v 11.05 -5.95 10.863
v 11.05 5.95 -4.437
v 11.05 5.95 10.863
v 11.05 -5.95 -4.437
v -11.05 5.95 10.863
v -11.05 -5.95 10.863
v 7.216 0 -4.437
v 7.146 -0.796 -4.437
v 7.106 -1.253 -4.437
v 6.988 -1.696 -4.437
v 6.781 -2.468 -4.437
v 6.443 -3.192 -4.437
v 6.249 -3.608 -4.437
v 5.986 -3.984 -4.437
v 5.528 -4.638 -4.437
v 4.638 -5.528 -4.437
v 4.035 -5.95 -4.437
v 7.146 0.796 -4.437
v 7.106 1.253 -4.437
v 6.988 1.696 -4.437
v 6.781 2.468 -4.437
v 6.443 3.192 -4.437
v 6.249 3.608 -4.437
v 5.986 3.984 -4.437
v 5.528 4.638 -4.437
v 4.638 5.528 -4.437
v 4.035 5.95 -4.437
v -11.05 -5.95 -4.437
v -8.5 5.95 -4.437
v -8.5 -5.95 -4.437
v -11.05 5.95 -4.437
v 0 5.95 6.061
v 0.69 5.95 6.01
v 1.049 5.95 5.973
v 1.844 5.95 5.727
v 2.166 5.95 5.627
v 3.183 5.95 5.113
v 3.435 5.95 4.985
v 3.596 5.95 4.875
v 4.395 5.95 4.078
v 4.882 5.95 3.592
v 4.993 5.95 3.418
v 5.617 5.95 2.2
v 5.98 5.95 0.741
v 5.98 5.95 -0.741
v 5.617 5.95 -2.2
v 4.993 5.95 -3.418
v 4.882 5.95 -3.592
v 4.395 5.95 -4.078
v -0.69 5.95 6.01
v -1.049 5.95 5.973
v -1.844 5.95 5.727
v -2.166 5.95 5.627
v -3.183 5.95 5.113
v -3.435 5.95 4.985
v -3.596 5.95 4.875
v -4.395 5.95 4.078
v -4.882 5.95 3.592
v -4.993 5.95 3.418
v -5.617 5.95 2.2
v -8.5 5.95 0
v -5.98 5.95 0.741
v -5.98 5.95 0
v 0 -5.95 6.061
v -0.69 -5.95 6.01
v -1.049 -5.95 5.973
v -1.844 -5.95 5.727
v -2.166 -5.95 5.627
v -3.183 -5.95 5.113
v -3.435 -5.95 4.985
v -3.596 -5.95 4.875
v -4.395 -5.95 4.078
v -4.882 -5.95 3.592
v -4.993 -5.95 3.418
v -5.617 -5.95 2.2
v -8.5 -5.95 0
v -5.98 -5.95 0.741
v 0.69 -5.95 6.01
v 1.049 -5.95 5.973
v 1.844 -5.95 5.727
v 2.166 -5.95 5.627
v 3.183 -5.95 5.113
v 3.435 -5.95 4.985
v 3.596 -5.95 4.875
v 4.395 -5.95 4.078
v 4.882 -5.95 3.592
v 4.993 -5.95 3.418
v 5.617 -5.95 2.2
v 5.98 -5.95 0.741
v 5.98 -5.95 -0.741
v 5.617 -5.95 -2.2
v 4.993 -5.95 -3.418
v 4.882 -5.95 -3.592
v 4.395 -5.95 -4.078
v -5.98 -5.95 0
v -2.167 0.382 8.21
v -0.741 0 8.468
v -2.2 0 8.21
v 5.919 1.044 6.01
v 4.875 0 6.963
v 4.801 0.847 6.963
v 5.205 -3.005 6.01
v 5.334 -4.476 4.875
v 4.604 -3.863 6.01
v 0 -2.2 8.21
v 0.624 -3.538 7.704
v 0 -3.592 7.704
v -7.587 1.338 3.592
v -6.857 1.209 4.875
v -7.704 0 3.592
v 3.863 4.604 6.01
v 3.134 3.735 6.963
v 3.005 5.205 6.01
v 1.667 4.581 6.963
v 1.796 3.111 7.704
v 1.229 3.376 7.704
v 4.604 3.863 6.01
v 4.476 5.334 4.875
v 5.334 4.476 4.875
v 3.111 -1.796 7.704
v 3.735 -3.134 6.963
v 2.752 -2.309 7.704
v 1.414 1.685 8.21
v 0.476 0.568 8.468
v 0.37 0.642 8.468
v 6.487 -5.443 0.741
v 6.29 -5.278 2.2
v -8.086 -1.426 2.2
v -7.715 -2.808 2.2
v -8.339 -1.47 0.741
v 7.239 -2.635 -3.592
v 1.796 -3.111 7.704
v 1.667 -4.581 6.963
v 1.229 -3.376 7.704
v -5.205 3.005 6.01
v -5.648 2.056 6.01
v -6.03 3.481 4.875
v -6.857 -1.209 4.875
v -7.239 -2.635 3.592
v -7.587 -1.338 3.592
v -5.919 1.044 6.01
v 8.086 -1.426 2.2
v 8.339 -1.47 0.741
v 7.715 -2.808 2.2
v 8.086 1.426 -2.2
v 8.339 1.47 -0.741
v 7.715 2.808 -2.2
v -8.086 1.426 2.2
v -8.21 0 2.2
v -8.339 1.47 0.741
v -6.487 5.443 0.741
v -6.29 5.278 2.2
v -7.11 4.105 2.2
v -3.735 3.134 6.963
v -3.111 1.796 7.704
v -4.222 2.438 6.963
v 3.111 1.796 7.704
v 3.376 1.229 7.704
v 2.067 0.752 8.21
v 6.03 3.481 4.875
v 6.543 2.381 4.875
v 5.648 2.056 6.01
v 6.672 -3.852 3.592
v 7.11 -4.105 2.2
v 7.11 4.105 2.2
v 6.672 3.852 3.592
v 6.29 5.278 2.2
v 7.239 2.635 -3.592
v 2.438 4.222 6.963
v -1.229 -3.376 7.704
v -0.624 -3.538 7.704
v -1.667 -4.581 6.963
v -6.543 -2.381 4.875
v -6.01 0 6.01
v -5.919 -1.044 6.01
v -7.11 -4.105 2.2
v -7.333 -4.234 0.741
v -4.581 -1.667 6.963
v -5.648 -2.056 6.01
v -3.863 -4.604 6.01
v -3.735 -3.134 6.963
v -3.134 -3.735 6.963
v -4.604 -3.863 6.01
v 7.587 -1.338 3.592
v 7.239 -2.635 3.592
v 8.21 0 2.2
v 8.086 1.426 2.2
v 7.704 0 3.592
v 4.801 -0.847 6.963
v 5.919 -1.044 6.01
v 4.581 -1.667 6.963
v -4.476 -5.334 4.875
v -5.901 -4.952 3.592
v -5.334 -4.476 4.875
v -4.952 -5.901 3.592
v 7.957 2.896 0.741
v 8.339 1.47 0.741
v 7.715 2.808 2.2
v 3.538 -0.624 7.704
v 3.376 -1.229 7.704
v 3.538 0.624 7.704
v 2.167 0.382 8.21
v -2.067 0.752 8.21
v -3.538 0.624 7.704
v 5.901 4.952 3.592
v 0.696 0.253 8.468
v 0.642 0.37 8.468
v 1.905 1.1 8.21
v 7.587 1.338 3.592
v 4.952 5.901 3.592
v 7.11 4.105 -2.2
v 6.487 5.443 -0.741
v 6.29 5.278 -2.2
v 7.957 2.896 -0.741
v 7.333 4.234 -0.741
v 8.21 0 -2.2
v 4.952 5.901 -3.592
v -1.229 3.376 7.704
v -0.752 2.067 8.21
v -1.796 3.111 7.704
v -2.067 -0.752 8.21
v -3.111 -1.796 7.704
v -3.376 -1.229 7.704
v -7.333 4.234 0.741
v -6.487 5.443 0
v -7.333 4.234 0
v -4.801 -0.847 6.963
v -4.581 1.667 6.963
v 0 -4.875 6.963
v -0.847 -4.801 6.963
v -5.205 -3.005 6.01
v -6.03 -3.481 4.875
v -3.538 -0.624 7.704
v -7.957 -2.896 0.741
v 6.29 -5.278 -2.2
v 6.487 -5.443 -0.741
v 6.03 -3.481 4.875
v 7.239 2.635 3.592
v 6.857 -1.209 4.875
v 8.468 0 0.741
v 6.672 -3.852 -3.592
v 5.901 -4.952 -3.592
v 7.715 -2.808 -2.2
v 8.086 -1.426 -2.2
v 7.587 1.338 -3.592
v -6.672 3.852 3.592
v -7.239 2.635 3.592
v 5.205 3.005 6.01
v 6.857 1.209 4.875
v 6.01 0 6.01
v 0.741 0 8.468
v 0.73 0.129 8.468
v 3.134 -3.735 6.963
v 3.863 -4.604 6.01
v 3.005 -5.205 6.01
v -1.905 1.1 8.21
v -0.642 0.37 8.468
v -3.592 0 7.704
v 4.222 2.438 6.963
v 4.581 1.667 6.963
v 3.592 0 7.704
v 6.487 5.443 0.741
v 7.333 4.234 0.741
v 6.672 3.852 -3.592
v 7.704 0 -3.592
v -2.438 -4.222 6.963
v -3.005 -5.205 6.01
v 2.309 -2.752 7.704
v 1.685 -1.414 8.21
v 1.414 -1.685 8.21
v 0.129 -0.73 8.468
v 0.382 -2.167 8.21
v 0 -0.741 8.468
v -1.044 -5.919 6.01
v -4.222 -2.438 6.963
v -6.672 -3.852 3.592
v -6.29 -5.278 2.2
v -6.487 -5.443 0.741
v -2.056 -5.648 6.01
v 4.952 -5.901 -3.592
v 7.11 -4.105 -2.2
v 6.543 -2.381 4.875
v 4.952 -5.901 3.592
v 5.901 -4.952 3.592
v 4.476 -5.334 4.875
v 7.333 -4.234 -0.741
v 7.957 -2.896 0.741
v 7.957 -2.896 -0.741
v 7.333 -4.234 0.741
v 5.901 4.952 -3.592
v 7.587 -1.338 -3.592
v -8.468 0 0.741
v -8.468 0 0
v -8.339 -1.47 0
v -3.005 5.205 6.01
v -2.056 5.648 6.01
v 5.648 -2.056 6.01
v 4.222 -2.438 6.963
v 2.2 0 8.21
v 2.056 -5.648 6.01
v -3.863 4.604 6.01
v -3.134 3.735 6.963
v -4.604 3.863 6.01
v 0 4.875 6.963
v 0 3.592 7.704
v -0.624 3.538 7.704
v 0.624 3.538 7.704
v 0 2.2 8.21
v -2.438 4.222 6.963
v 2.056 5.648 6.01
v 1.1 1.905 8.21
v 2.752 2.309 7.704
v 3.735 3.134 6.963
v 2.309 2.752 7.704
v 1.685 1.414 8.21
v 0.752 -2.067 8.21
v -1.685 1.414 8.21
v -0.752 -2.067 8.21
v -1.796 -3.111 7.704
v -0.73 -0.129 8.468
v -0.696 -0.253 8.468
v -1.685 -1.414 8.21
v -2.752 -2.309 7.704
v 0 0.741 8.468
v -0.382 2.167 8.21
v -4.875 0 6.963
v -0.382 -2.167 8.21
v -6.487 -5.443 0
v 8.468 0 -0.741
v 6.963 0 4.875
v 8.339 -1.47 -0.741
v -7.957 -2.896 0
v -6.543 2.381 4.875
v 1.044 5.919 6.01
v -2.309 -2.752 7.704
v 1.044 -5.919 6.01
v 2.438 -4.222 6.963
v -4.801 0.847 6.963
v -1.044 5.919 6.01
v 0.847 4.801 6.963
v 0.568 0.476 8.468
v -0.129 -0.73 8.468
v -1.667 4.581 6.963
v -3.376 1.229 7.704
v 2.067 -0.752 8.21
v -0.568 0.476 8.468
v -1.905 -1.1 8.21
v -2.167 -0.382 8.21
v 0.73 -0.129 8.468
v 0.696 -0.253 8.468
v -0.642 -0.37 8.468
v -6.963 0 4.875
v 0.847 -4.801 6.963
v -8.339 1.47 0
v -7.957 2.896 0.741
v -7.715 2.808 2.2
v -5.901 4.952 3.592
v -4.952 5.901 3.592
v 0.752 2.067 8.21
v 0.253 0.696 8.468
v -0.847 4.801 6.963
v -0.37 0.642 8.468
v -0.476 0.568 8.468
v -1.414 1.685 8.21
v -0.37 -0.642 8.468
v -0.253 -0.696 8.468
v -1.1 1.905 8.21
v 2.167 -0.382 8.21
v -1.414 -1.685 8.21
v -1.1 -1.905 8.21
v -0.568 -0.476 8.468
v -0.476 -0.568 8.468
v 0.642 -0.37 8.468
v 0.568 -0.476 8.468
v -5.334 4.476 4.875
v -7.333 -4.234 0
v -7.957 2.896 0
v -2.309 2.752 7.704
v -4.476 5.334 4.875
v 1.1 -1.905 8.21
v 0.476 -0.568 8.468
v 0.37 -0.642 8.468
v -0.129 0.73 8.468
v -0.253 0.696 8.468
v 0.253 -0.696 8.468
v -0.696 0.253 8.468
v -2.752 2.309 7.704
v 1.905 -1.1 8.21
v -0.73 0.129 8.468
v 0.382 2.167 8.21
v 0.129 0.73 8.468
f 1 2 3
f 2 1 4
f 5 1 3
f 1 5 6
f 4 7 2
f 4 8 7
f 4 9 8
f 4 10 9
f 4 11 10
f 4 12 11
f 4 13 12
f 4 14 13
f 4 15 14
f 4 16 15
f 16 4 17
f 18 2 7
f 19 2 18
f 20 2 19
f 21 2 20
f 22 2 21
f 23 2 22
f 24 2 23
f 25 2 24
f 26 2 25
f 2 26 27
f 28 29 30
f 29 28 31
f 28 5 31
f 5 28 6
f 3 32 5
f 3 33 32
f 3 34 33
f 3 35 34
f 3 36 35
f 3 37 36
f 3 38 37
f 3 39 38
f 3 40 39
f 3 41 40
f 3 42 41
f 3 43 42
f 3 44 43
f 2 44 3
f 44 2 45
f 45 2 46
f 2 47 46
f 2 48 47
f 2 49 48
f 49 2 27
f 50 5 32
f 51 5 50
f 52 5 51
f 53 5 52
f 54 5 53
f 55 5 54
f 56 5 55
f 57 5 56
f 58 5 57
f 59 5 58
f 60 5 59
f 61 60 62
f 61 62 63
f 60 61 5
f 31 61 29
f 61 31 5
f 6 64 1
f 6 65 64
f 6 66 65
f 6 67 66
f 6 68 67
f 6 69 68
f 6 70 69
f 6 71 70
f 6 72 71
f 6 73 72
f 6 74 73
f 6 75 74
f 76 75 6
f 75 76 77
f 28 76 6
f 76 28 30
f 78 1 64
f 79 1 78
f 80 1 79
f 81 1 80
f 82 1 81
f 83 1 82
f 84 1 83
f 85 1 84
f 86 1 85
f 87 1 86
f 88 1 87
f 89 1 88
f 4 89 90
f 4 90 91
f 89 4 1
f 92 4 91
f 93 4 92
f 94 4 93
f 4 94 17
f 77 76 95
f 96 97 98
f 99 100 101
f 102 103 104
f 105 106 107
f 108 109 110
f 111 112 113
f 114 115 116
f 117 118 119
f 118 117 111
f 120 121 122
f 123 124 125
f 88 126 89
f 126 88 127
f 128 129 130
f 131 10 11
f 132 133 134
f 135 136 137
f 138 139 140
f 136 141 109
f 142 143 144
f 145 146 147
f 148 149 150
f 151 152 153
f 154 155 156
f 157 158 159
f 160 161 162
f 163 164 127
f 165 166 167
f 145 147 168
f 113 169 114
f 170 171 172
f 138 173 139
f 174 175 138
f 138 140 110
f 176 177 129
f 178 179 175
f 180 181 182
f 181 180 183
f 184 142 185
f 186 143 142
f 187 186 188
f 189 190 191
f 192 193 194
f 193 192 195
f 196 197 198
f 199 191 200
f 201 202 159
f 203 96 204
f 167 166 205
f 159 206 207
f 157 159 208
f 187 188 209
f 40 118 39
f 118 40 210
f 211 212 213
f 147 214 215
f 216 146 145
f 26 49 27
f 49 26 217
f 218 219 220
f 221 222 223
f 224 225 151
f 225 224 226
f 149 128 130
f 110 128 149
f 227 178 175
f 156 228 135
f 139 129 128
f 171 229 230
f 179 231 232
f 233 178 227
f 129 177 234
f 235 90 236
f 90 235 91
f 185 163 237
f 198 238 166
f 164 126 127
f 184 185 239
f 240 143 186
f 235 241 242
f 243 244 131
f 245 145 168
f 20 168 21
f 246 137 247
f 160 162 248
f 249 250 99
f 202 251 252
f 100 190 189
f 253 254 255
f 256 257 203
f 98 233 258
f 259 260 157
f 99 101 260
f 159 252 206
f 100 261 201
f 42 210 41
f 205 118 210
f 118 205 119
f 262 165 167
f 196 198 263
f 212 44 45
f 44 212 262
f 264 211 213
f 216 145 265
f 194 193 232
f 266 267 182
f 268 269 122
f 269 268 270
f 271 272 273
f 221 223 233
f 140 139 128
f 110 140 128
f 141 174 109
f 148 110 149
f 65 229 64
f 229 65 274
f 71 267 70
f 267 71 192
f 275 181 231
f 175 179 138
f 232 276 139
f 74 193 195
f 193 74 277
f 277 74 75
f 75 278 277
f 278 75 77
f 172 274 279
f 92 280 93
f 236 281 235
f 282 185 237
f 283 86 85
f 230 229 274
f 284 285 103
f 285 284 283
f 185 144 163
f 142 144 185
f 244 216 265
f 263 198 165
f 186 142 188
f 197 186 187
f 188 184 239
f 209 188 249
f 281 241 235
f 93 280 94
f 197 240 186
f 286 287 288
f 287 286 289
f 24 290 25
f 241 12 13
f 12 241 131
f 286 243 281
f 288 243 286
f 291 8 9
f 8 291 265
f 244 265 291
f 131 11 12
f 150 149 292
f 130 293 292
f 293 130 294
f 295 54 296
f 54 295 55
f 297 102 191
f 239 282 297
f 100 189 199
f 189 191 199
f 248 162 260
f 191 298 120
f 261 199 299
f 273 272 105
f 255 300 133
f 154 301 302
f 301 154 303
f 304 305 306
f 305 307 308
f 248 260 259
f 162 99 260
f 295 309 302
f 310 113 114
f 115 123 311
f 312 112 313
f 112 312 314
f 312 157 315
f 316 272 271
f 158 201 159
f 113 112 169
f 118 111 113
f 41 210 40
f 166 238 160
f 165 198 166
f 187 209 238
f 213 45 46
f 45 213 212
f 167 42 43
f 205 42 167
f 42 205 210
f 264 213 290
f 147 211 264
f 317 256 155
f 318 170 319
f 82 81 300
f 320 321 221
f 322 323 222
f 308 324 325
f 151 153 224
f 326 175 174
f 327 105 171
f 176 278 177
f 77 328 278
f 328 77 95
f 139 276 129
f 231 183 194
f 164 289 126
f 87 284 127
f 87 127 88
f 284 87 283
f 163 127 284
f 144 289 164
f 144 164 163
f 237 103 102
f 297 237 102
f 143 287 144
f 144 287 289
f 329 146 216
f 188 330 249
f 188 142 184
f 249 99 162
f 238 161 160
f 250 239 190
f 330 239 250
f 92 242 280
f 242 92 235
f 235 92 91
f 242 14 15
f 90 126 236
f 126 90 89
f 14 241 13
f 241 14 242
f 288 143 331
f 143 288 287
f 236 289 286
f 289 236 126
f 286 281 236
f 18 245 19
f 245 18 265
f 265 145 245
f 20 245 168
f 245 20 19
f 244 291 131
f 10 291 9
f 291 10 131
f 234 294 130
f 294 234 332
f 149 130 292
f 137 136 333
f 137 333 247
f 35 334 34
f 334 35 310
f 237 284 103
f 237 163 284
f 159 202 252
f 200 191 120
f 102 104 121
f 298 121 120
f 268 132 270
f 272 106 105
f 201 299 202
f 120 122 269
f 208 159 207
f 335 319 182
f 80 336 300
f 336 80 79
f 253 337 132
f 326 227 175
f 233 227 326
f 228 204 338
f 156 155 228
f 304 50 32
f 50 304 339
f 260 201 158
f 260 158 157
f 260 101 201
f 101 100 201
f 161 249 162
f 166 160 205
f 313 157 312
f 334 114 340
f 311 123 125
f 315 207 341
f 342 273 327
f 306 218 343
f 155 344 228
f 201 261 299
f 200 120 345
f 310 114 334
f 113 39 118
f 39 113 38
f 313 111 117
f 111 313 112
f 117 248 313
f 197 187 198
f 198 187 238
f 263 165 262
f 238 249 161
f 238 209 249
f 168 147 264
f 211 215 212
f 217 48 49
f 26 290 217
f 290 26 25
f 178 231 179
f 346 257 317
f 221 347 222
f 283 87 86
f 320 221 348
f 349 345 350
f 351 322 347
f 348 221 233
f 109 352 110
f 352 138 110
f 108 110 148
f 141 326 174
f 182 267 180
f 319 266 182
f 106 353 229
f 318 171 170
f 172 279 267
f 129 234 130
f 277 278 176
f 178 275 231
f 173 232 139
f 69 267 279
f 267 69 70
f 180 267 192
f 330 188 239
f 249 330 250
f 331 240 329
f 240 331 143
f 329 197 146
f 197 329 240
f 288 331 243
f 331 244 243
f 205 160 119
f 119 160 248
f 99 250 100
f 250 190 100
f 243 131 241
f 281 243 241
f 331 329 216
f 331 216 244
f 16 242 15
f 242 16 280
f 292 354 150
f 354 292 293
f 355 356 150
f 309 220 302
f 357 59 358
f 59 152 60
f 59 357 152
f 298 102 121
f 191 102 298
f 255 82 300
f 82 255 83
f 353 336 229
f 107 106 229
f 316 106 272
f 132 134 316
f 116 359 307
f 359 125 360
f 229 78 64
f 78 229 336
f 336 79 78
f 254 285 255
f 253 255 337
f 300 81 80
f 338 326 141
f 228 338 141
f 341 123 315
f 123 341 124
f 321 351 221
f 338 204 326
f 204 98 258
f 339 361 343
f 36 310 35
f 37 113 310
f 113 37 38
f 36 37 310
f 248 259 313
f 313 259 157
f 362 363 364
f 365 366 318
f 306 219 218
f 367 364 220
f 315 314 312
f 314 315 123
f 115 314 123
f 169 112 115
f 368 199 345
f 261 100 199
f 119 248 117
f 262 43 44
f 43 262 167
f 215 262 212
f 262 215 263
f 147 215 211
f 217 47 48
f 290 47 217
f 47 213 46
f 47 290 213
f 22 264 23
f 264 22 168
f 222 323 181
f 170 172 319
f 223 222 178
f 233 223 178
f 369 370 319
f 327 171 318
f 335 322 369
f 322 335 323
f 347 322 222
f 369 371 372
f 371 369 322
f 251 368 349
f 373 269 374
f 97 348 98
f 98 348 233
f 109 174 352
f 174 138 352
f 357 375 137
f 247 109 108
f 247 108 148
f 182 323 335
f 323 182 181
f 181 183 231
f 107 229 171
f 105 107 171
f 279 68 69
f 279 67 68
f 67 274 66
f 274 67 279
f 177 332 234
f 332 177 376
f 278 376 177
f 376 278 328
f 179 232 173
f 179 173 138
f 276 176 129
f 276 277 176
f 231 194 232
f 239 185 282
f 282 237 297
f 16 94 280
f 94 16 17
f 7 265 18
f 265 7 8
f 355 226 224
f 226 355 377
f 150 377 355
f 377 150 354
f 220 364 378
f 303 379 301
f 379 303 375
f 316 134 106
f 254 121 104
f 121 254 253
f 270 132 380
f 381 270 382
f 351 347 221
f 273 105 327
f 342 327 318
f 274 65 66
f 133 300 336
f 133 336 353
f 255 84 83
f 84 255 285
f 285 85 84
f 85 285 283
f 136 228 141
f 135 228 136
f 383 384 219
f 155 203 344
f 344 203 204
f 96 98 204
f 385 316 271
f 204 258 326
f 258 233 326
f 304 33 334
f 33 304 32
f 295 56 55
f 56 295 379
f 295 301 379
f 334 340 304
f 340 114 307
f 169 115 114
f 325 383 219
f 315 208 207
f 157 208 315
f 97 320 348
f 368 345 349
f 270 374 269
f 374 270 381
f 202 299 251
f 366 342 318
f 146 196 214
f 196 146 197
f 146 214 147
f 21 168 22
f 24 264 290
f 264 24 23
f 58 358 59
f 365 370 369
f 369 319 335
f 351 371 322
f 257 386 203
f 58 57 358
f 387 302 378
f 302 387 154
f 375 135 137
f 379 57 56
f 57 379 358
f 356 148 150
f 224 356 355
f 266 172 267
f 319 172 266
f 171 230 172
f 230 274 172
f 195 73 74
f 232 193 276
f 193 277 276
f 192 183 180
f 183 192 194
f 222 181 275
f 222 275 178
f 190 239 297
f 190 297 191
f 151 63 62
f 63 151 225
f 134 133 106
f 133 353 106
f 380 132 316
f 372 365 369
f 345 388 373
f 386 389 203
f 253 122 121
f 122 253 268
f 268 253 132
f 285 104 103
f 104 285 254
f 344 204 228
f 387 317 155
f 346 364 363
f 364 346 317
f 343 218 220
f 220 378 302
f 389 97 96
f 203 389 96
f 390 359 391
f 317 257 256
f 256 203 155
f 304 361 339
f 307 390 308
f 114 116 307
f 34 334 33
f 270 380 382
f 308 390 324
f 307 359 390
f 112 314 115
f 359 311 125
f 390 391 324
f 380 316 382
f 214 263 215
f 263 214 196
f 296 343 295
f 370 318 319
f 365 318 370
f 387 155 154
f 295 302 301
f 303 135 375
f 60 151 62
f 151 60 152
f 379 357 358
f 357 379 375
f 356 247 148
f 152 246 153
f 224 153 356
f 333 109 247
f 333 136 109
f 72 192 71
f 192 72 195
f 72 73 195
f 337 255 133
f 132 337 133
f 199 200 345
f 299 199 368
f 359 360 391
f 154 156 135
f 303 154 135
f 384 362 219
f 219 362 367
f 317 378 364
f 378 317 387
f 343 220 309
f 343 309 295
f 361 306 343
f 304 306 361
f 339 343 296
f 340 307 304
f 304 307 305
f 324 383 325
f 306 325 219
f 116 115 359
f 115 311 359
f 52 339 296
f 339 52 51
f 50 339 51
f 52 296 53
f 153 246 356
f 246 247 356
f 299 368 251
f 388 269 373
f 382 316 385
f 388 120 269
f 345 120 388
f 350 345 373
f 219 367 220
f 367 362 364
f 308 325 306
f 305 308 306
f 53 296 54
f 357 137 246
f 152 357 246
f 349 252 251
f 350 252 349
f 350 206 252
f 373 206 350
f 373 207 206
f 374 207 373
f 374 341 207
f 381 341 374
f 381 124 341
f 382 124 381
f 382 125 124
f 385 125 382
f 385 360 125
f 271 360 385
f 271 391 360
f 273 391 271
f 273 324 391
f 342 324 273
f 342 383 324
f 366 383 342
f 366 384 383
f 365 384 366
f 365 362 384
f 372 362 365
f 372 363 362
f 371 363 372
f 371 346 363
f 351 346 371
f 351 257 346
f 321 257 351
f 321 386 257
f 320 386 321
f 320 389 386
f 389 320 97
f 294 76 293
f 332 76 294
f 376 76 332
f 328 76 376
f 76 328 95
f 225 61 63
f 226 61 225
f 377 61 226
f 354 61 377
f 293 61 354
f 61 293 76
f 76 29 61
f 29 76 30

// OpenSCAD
$fn=6;

// unit is mm


baldia = 17; // ball diameter
//holdia = 12; // hole diameter

culen = baldia * 1.3; // cube length
cudep = baldia * 0.7; // cube depth
cuhei = baldia * 0.9; // cube height

difference() {
  translate([ 0, 0, cuhei * 0.21 ])
    cube(size=[ culen, cudep, cuhei ], center=true);
  #sphere(d=baldia, $fn=36);
  #translate([ -baldia / 4, 0, -baldia / 4 ])
    cube(size=[ baldia / 2, baldia, baldia / 2 ], center=true);
}
